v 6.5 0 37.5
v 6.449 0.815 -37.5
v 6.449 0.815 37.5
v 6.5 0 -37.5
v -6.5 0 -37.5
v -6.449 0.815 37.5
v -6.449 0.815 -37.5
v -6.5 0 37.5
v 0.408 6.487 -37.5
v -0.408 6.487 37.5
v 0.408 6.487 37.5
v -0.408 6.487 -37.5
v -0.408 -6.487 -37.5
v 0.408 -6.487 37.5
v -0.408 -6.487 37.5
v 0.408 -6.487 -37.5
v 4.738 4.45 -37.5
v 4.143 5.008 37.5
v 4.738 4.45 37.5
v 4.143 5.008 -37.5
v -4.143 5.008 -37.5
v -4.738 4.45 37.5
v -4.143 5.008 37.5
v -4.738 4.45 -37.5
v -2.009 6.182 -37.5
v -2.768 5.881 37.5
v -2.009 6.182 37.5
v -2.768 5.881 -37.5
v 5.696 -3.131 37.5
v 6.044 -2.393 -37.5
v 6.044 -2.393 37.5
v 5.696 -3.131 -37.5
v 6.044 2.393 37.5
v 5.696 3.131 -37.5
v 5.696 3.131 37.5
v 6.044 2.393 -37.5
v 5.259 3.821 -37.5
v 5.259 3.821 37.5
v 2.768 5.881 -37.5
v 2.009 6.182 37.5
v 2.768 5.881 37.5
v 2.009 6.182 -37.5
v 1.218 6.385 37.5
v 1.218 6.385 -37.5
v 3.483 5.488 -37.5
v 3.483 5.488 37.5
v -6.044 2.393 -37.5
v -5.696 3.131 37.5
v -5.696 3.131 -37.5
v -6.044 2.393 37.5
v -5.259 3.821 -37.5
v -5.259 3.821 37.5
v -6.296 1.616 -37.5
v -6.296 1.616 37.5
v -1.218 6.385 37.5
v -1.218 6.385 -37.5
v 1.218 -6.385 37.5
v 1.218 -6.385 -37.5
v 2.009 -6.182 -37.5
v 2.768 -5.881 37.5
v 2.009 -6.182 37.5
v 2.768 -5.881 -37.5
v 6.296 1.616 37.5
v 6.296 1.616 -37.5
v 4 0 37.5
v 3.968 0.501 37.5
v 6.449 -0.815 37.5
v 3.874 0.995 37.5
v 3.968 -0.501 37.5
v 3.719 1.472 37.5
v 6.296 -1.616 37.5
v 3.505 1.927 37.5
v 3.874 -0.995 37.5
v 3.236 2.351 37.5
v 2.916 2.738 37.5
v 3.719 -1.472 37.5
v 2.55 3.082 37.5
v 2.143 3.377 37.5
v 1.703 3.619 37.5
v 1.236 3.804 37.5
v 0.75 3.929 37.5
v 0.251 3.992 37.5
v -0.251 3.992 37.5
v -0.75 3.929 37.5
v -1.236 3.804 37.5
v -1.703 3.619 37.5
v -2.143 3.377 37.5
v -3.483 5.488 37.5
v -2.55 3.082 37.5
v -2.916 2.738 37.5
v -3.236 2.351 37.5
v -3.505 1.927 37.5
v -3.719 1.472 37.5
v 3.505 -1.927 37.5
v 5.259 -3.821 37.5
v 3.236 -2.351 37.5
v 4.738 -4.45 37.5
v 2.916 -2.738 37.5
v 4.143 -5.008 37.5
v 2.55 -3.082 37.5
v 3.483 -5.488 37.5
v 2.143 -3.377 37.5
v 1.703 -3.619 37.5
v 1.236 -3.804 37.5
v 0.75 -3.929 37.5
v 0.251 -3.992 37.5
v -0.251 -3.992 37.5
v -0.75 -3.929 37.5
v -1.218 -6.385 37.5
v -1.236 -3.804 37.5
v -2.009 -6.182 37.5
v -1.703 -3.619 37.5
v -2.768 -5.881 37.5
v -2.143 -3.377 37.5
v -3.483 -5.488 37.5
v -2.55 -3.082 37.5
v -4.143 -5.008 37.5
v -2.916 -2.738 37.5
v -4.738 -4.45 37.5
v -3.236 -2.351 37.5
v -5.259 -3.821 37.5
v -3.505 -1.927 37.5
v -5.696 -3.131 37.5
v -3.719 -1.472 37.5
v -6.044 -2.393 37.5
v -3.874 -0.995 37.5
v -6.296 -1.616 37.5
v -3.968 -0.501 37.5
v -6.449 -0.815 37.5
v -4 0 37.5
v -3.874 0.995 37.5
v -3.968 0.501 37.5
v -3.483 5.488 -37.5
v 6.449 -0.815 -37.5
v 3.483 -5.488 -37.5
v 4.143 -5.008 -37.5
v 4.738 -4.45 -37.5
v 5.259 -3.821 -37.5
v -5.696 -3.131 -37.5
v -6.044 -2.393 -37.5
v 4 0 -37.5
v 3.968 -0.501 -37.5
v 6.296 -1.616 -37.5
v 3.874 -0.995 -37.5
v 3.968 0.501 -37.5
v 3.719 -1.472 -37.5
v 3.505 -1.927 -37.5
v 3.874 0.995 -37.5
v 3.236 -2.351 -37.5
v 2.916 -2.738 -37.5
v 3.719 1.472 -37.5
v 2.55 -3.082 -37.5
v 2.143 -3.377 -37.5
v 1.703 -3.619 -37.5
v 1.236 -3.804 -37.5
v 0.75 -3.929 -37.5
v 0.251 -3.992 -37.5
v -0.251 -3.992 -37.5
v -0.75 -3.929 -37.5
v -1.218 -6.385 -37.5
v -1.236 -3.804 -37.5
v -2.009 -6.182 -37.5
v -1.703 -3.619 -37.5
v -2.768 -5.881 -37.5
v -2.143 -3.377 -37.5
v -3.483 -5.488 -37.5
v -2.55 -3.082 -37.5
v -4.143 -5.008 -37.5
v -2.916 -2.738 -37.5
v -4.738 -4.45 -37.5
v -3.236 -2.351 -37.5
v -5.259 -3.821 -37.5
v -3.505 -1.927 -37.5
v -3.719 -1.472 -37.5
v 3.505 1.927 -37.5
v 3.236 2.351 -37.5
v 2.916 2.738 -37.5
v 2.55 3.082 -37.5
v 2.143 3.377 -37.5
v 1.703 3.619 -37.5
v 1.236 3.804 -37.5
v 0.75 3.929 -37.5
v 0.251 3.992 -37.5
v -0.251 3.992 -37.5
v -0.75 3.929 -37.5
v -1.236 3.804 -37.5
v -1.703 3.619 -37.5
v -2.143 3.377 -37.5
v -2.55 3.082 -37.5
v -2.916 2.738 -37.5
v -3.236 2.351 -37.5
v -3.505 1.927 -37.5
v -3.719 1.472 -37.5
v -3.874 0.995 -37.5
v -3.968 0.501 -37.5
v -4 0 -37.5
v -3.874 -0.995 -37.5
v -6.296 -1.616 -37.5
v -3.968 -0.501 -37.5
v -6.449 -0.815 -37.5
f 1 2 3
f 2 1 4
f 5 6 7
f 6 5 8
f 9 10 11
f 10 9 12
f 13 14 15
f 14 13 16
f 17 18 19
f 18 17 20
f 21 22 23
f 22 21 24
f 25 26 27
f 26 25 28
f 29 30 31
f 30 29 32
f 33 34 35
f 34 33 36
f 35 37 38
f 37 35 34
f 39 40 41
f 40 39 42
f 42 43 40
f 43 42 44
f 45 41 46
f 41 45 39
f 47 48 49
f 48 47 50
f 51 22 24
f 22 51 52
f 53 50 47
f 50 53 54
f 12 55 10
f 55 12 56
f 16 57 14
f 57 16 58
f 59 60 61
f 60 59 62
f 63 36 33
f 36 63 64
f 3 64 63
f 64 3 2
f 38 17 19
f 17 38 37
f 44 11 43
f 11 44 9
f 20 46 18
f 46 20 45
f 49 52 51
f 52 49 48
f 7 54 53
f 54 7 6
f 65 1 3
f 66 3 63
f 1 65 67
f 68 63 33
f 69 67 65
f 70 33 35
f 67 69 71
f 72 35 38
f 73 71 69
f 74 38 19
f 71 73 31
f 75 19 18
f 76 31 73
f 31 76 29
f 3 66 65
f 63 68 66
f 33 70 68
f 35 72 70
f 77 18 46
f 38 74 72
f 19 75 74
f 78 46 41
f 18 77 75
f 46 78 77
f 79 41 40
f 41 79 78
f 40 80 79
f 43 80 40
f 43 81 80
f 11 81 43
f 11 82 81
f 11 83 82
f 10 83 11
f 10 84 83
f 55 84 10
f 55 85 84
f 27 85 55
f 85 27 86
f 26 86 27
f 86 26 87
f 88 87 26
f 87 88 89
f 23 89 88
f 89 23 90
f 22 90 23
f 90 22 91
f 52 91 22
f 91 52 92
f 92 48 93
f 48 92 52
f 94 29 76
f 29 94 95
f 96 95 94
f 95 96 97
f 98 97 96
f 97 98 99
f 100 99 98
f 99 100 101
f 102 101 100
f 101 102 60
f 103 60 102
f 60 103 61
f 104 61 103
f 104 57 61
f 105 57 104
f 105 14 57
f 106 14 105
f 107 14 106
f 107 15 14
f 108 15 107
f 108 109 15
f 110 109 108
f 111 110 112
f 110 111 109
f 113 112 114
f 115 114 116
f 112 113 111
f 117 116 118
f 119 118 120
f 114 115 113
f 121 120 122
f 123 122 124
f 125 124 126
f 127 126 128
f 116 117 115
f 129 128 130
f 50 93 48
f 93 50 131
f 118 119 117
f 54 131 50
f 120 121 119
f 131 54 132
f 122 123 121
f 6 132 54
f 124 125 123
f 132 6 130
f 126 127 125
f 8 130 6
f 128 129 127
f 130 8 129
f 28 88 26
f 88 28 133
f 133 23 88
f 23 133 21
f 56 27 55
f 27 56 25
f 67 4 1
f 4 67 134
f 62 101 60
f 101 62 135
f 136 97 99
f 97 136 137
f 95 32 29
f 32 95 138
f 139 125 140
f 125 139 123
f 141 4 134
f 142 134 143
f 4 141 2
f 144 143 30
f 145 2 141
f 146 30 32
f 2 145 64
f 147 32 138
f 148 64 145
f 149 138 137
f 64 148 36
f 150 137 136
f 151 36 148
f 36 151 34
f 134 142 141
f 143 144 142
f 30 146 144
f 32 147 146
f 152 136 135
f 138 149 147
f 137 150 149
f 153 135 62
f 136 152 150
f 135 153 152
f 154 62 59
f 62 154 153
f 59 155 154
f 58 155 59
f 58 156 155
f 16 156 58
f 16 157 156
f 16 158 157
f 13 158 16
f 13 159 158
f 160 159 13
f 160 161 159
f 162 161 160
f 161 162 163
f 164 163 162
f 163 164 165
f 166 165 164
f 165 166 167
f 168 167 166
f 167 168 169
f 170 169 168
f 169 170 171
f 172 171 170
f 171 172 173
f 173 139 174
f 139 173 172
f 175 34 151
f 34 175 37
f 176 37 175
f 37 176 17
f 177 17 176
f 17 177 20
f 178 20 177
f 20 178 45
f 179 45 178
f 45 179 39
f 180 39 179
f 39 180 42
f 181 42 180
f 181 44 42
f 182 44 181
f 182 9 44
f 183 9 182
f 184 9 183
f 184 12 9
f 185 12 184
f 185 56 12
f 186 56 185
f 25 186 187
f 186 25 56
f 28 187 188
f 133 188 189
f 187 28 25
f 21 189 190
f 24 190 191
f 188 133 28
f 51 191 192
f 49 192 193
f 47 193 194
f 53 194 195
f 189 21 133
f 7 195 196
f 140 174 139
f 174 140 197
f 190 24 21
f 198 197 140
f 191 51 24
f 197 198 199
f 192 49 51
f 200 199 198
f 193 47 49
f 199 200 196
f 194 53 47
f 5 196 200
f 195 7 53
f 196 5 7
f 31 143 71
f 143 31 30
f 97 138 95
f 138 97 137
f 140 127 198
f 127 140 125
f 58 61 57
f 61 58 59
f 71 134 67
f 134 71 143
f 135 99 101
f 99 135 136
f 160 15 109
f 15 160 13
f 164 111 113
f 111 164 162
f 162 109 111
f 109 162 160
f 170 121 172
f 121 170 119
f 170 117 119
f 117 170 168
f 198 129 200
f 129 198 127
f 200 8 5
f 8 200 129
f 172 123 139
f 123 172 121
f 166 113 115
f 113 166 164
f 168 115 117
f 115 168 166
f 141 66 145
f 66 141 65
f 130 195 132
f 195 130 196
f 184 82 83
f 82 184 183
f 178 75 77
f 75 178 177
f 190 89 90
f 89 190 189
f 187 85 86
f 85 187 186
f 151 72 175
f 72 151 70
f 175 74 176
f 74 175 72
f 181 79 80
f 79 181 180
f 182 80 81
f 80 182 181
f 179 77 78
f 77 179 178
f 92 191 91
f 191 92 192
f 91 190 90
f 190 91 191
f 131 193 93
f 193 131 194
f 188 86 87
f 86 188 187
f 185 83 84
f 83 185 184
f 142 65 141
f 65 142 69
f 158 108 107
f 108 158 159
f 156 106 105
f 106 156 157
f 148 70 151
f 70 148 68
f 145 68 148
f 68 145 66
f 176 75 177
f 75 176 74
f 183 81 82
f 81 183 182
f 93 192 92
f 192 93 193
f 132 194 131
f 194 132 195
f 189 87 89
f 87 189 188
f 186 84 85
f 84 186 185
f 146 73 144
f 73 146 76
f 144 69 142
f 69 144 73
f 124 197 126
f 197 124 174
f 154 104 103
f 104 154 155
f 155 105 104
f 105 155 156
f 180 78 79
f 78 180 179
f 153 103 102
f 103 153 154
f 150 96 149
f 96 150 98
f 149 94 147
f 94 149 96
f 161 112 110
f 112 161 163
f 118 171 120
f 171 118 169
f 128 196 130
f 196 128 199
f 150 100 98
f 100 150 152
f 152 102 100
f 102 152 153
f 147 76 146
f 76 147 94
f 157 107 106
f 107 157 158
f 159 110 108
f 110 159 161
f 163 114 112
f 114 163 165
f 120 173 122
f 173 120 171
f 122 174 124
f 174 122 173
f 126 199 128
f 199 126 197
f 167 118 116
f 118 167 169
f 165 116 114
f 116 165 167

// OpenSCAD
$fn = 50;


difference() {
	union() {
		translate(v = [0, 0, -37.5000000000]) {
			cylinder(h = 75, r = 6.5000000000);
		}
	}
	union() {
		translate(v = [0, 0, -100.0000000000]) {
			cylinder(h = 200, r = 4);
		}
	}
}
